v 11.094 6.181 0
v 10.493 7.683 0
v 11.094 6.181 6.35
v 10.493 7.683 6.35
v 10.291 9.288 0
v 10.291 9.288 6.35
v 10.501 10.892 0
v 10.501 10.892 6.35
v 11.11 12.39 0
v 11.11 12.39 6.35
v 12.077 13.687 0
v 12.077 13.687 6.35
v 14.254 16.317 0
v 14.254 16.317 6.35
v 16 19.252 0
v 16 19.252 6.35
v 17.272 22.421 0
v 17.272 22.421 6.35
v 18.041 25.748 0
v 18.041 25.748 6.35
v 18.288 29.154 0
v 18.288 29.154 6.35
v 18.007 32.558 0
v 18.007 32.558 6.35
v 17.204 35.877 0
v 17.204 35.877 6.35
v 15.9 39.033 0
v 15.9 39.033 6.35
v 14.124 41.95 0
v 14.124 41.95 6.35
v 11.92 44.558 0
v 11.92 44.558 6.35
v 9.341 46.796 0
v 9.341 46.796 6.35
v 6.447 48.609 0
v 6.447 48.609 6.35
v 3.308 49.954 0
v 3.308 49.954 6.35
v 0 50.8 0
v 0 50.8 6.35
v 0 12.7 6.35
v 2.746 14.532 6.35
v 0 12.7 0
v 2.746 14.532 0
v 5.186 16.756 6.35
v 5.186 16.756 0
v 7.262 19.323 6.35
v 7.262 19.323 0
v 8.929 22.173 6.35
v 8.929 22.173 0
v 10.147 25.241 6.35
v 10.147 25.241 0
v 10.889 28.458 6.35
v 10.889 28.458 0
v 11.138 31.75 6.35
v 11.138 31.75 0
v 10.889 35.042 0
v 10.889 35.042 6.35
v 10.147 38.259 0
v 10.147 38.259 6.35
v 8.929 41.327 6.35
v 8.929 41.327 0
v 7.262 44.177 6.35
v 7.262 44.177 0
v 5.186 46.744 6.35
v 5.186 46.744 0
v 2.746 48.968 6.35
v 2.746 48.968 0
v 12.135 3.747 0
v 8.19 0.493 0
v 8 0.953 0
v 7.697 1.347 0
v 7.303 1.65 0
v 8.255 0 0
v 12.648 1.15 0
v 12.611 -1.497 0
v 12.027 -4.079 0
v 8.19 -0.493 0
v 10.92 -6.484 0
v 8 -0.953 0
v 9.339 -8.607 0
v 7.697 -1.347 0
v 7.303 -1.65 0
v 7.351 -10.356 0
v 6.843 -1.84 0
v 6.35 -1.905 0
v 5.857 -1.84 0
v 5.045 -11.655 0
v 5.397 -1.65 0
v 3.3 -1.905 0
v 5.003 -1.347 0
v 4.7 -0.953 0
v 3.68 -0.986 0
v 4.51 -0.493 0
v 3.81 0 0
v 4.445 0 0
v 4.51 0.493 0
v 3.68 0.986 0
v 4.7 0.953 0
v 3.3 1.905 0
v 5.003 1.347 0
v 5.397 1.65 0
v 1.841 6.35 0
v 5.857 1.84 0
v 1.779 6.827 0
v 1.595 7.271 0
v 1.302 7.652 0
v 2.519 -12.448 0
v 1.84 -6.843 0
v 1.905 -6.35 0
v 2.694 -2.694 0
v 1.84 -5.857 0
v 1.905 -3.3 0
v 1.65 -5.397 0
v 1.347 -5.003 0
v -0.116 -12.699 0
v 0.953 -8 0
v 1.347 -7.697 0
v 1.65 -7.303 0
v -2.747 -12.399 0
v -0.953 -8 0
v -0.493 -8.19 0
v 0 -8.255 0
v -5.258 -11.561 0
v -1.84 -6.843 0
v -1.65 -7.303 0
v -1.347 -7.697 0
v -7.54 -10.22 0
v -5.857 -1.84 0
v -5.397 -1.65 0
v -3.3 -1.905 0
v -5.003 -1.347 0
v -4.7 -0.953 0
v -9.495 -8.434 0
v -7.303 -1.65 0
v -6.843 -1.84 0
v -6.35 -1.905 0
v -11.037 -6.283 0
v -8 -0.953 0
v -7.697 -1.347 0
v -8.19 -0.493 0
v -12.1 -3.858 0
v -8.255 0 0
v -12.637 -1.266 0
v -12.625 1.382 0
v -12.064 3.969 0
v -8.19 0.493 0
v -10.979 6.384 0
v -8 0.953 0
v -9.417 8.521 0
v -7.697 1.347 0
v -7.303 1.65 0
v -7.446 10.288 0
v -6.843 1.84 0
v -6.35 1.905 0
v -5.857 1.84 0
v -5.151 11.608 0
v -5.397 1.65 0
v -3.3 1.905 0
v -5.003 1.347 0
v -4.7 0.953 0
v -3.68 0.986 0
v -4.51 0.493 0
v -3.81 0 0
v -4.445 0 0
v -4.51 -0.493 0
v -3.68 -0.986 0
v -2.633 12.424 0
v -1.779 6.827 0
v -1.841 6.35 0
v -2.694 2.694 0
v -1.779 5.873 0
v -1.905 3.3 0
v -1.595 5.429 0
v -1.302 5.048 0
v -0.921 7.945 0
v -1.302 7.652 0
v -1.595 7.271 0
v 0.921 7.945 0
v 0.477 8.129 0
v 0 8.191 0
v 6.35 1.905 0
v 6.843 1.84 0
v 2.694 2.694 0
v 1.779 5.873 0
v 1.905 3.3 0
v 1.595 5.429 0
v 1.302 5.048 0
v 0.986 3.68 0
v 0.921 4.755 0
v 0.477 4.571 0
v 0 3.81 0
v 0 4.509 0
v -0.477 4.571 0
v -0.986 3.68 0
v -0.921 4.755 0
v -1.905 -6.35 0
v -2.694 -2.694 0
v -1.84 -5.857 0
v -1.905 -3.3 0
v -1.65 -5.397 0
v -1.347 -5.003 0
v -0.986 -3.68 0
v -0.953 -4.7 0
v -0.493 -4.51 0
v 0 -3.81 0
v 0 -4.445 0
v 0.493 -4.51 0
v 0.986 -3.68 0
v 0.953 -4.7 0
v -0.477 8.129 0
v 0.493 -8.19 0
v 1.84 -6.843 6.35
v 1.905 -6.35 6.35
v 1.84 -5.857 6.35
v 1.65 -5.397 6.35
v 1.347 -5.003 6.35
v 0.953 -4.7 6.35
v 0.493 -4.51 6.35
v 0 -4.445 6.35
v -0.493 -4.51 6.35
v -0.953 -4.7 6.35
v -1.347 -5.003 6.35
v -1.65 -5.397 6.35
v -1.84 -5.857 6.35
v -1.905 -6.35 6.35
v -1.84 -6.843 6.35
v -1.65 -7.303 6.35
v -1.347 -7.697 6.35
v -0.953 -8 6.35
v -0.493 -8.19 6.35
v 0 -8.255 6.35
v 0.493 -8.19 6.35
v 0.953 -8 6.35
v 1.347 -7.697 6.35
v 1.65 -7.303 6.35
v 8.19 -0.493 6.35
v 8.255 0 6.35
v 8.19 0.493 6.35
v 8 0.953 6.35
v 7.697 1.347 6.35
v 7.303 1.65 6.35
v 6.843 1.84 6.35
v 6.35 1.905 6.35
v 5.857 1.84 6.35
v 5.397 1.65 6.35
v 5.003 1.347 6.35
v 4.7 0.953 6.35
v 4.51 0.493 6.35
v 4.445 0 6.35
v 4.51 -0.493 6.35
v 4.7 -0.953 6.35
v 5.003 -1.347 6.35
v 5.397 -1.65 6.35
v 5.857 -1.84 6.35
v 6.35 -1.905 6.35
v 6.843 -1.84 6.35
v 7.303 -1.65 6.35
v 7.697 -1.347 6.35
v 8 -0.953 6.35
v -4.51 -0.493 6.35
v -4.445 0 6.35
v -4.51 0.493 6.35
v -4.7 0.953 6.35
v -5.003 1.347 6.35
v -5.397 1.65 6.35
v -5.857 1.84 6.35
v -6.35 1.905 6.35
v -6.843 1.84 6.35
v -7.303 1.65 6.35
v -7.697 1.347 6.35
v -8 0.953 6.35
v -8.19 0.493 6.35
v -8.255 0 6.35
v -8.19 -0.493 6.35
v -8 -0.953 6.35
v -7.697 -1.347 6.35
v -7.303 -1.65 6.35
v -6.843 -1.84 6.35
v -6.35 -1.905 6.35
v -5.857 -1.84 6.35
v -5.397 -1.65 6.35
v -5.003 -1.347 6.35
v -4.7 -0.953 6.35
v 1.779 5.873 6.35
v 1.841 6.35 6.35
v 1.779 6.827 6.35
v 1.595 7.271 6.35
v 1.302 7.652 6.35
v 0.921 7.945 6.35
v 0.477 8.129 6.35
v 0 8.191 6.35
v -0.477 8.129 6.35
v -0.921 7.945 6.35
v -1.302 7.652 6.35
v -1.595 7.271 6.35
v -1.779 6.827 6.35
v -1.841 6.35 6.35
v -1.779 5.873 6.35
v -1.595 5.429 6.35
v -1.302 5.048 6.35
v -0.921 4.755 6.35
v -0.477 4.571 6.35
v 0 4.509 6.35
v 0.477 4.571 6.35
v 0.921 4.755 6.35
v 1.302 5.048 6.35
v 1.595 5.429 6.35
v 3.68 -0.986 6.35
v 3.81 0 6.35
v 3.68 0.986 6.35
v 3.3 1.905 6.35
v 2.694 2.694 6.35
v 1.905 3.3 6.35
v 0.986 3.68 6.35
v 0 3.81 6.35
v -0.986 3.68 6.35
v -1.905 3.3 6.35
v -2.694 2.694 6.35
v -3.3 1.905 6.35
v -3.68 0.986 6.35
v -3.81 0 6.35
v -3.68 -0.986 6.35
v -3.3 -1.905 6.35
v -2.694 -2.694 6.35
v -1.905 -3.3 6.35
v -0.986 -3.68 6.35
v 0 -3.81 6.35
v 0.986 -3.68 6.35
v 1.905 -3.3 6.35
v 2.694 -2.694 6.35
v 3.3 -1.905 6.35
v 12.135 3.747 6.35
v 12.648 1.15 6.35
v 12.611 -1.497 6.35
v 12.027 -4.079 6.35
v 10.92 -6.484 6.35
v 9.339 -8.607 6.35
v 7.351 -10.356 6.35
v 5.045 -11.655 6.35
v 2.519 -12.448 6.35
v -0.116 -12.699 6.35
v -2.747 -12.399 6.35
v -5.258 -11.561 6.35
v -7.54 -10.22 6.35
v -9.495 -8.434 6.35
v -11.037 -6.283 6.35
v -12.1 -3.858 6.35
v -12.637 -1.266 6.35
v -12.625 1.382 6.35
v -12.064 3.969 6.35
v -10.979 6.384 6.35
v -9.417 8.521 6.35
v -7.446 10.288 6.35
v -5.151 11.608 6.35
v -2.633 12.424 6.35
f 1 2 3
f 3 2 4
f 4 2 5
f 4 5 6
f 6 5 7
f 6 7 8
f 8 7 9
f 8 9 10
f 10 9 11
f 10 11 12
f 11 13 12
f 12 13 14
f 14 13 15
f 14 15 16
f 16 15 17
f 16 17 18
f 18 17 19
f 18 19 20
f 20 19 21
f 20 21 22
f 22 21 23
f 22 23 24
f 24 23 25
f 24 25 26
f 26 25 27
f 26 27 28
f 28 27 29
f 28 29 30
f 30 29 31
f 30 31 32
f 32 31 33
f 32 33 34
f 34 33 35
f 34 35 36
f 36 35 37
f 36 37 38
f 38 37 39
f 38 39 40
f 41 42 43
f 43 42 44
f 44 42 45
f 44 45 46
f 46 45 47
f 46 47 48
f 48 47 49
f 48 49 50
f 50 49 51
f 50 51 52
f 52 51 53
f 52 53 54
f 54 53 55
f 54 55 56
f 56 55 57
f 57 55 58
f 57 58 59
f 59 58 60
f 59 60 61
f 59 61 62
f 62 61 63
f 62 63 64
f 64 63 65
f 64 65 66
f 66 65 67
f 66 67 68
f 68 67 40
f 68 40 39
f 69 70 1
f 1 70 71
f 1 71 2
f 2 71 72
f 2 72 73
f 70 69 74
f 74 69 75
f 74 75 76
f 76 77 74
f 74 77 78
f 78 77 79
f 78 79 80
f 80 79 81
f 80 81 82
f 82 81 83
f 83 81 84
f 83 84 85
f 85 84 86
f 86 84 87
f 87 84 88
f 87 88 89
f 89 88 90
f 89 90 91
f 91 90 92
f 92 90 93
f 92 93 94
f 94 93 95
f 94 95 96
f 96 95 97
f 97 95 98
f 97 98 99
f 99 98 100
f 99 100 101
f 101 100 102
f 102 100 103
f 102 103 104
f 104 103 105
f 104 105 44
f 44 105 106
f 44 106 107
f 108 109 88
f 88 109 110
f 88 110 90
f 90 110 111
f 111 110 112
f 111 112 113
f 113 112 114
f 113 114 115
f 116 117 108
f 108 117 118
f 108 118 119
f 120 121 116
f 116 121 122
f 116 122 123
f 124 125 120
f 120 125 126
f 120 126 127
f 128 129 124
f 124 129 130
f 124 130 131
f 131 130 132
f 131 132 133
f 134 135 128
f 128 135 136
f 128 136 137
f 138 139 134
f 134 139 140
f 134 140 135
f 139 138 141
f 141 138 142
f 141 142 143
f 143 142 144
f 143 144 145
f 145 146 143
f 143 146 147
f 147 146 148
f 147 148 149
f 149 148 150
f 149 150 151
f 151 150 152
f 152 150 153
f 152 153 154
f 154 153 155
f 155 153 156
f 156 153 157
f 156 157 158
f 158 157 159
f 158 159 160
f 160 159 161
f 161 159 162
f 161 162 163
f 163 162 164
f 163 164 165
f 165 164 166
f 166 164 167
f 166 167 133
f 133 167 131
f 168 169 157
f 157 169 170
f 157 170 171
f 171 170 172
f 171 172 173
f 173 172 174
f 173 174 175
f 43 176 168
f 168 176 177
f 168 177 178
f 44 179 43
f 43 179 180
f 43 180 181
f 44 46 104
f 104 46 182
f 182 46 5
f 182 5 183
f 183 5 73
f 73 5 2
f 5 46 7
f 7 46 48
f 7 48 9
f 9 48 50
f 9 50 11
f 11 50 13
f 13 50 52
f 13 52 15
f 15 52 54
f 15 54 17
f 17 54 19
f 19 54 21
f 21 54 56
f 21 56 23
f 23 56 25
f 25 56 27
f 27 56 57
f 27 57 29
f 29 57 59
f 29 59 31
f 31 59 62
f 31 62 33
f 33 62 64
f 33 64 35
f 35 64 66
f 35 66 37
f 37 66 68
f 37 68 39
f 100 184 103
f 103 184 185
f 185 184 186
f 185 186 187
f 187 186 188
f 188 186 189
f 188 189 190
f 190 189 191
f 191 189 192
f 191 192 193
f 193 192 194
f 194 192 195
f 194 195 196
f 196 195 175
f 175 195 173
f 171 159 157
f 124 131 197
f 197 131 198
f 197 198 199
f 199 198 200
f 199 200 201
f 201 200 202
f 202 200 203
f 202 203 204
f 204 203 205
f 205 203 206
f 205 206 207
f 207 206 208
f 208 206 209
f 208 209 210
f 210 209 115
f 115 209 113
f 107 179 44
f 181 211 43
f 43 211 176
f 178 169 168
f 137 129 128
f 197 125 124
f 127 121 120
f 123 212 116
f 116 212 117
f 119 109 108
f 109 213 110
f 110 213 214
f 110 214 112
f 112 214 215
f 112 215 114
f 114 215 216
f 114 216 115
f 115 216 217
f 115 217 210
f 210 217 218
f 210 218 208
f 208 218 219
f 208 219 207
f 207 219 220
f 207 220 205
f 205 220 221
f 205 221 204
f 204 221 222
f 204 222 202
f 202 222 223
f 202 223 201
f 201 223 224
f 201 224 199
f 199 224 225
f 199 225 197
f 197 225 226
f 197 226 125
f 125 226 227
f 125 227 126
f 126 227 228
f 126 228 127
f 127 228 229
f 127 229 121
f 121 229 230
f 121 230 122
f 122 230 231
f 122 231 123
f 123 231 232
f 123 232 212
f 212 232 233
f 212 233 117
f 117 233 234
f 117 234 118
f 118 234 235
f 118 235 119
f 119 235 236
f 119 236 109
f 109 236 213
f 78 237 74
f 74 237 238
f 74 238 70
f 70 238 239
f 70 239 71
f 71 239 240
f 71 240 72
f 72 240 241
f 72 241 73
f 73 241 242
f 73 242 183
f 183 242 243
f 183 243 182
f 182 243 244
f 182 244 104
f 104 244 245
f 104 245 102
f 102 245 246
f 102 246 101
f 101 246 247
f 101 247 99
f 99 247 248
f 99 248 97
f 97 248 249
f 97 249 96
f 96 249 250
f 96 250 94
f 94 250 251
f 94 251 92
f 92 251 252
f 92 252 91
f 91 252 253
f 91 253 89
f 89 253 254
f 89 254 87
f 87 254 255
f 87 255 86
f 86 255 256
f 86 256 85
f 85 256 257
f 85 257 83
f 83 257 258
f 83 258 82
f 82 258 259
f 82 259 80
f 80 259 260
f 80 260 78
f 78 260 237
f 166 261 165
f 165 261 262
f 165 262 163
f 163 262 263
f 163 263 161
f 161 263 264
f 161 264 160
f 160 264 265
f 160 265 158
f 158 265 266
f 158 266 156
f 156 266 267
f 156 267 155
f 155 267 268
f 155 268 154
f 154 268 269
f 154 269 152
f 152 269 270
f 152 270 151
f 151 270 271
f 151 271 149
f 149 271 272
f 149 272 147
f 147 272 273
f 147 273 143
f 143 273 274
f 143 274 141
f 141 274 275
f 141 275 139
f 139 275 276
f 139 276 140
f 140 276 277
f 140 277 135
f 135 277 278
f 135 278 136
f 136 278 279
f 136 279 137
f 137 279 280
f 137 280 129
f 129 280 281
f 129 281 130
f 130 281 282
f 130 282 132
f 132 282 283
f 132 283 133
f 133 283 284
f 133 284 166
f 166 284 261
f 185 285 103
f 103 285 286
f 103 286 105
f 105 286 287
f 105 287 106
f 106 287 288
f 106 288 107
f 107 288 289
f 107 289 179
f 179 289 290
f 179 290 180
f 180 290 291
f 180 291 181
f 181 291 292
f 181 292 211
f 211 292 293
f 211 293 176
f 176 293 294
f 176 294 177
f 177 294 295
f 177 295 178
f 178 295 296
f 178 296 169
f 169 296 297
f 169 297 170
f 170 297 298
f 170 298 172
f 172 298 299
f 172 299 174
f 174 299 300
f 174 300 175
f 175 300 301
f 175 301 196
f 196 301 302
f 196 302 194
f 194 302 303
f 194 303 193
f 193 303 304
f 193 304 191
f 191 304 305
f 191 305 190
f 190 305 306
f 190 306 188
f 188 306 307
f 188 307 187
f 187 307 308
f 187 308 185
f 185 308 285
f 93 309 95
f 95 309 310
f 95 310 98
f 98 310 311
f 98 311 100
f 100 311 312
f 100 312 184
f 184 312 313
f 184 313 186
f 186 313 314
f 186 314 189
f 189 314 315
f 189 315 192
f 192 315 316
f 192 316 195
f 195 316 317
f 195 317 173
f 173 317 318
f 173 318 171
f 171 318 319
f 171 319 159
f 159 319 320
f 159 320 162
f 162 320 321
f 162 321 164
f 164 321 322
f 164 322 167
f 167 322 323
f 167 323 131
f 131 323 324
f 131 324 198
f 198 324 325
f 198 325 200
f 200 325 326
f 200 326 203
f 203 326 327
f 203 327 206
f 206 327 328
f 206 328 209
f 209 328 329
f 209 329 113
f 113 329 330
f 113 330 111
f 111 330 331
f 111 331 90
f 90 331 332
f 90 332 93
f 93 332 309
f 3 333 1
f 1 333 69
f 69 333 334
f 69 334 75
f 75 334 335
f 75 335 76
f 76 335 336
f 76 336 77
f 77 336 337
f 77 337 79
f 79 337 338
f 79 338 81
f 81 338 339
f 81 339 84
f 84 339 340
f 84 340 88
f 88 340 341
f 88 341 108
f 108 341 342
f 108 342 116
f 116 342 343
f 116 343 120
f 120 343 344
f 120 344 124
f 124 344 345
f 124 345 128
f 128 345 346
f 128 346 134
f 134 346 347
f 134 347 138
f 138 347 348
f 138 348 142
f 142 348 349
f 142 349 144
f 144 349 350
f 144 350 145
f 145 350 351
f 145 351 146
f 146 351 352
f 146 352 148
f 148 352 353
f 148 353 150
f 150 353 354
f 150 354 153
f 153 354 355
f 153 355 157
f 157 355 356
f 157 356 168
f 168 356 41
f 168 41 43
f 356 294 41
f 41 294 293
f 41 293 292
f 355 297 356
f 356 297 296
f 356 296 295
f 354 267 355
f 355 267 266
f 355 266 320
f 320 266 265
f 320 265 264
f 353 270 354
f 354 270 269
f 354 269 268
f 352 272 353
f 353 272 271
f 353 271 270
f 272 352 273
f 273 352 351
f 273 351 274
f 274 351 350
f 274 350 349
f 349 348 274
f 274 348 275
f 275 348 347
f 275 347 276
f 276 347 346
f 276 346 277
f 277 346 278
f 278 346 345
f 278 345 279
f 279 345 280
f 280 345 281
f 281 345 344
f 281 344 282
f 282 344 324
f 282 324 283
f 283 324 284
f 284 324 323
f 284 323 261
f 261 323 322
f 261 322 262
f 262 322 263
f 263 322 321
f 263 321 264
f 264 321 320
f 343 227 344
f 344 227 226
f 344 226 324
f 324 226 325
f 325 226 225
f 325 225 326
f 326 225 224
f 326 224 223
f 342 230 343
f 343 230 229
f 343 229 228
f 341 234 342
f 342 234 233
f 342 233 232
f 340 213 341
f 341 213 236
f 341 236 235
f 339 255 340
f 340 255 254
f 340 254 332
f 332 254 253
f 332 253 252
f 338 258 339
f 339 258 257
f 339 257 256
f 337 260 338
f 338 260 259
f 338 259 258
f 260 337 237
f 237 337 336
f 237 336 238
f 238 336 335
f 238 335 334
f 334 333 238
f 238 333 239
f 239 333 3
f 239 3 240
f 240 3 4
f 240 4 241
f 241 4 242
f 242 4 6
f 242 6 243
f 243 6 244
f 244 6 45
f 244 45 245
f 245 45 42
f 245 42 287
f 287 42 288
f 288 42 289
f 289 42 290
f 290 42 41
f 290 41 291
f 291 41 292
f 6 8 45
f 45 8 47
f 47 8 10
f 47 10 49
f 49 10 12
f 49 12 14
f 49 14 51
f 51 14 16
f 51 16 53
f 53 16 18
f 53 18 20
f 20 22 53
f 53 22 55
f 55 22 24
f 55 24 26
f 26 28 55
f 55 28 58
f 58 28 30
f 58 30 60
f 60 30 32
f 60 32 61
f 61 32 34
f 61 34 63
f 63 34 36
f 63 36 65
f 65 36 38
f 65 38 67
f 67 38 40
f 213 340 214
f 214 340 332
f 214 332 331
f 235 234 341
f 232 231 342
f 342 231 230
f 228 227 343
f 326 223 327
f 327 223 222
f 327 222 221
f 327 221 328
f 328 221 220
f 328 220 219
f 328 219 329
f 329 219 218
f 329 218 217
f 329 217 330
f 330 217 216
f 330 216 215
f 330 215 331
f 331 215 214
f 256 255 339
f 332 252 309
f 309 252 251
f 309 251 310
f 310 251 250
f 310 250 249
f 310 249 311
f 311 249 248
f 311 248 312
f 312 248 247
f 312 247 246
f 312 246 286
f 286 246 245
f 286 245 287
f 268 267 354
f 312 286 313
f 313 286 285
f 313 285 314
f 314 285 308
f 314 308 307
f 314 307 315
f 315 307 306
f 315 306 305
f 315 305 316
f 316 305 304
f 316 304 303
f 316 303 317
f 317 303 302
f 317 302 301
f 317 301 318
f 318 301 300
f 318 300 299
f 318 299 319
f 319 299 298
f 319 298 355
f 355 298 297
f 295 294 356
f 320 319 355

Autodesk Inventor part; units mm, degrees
ref_plane "YZ Plane" through (0, 0, 0) normal (1, 0, 0) x (0, 1, 0)
ref_plane "XZ Plane" through (0, 0, 0) normal (0, 1, 0) x (-1, 0, 0)
ref_plane "XY Plane" through (0, 0, 0) normal (0, 0, 1) x (1, 0, 0)
sketch "Sketch1" plane through (0, 0, 0) normal (0, 0, 1) x (1, 0, 0)
  circle A0 centre (0, 0) radius 12.7
  dimension "d0" = 25.4
extrude "Extrusion1" add sketch "Sketch1" along normal blind 6.35
sketch "Sketch2" plane through (0, 0, 6.35) normal (0, 0, 1) x (1, 0, 0)
  circle A0 centre (0, 0) radius 3.81
  dimension "d3" = 7.62
extrude "Extrusion2" cut sketch "Sketch2" against normal blind 6.35
sketch "Sketch3" plane through (0, 0, 6.35) normal (0, 0, 1) x (1, 0, 0)
  circle A0 centre (0, 6.35) radius 1.8415
  point P0 (0, 0)
  dimension "d6" = 3.683
  dimension "d7" = 6.35
extrude "Extrusion3" cut sketch "Sketch3" against normal blind 6.35
sketch "Sketch4" plane through (0, 0, 6.35) normal (0, 0, 1) x (1, 0, 0)
  circle A0 centre (6.35, 0) radius 1.905
  circle A1 centre (0, -6.35) radius 1.905
  circle A2 centre (-6.35, 0) radius 1.905
  point P0 (0, 0)
  dimension "d10" = 3.81
  dimension "d11" = 3.81
  dimension "d12" = 3.81
  dimension "d13" = 6.35
  dimension "d14" = 6.35
  dimension "d15" = 6.35
extrude "Extrusion4" cut sketch "Sketch4" against normal blind 6.35
sketch "Sketch5" plane through (0, 0, 6.35) normal (0, 0, 1) x (1, 0, 0)
  circle A0 centre (0, 0) radius 12.7 projected
  arc A1 (0, 12.7) -> (0, 50.8) centre (-10.7218, 31.75) ccw
  line L0 (0, 12.7) -> (0, 50.8) construction
  line L1 (0, 12.7) -> (38.1, 12.7) construction
  arc A2 (7.3073, 9.9507) -> (0, 50.8) centre (-3.7987, 29.0422) ccw
  arc A3 (0, 12.7) -> (7.3073, 9.9507) centre (4.4505, 13.4432) ccw
  dimension "d18" = 38.1
  dimension "d19" = 90
extrude "Extrusion5" add sketch "Sketch5" against normal blind 6.35 contours A1 A2 A0 | A0 A2 A3 picked at (3.7894, 11.0049)
fillet "Fillet1" radius 6.35 1 edges at (7.6377, 10.1467, 3.175)
properties part number "claw beta"
